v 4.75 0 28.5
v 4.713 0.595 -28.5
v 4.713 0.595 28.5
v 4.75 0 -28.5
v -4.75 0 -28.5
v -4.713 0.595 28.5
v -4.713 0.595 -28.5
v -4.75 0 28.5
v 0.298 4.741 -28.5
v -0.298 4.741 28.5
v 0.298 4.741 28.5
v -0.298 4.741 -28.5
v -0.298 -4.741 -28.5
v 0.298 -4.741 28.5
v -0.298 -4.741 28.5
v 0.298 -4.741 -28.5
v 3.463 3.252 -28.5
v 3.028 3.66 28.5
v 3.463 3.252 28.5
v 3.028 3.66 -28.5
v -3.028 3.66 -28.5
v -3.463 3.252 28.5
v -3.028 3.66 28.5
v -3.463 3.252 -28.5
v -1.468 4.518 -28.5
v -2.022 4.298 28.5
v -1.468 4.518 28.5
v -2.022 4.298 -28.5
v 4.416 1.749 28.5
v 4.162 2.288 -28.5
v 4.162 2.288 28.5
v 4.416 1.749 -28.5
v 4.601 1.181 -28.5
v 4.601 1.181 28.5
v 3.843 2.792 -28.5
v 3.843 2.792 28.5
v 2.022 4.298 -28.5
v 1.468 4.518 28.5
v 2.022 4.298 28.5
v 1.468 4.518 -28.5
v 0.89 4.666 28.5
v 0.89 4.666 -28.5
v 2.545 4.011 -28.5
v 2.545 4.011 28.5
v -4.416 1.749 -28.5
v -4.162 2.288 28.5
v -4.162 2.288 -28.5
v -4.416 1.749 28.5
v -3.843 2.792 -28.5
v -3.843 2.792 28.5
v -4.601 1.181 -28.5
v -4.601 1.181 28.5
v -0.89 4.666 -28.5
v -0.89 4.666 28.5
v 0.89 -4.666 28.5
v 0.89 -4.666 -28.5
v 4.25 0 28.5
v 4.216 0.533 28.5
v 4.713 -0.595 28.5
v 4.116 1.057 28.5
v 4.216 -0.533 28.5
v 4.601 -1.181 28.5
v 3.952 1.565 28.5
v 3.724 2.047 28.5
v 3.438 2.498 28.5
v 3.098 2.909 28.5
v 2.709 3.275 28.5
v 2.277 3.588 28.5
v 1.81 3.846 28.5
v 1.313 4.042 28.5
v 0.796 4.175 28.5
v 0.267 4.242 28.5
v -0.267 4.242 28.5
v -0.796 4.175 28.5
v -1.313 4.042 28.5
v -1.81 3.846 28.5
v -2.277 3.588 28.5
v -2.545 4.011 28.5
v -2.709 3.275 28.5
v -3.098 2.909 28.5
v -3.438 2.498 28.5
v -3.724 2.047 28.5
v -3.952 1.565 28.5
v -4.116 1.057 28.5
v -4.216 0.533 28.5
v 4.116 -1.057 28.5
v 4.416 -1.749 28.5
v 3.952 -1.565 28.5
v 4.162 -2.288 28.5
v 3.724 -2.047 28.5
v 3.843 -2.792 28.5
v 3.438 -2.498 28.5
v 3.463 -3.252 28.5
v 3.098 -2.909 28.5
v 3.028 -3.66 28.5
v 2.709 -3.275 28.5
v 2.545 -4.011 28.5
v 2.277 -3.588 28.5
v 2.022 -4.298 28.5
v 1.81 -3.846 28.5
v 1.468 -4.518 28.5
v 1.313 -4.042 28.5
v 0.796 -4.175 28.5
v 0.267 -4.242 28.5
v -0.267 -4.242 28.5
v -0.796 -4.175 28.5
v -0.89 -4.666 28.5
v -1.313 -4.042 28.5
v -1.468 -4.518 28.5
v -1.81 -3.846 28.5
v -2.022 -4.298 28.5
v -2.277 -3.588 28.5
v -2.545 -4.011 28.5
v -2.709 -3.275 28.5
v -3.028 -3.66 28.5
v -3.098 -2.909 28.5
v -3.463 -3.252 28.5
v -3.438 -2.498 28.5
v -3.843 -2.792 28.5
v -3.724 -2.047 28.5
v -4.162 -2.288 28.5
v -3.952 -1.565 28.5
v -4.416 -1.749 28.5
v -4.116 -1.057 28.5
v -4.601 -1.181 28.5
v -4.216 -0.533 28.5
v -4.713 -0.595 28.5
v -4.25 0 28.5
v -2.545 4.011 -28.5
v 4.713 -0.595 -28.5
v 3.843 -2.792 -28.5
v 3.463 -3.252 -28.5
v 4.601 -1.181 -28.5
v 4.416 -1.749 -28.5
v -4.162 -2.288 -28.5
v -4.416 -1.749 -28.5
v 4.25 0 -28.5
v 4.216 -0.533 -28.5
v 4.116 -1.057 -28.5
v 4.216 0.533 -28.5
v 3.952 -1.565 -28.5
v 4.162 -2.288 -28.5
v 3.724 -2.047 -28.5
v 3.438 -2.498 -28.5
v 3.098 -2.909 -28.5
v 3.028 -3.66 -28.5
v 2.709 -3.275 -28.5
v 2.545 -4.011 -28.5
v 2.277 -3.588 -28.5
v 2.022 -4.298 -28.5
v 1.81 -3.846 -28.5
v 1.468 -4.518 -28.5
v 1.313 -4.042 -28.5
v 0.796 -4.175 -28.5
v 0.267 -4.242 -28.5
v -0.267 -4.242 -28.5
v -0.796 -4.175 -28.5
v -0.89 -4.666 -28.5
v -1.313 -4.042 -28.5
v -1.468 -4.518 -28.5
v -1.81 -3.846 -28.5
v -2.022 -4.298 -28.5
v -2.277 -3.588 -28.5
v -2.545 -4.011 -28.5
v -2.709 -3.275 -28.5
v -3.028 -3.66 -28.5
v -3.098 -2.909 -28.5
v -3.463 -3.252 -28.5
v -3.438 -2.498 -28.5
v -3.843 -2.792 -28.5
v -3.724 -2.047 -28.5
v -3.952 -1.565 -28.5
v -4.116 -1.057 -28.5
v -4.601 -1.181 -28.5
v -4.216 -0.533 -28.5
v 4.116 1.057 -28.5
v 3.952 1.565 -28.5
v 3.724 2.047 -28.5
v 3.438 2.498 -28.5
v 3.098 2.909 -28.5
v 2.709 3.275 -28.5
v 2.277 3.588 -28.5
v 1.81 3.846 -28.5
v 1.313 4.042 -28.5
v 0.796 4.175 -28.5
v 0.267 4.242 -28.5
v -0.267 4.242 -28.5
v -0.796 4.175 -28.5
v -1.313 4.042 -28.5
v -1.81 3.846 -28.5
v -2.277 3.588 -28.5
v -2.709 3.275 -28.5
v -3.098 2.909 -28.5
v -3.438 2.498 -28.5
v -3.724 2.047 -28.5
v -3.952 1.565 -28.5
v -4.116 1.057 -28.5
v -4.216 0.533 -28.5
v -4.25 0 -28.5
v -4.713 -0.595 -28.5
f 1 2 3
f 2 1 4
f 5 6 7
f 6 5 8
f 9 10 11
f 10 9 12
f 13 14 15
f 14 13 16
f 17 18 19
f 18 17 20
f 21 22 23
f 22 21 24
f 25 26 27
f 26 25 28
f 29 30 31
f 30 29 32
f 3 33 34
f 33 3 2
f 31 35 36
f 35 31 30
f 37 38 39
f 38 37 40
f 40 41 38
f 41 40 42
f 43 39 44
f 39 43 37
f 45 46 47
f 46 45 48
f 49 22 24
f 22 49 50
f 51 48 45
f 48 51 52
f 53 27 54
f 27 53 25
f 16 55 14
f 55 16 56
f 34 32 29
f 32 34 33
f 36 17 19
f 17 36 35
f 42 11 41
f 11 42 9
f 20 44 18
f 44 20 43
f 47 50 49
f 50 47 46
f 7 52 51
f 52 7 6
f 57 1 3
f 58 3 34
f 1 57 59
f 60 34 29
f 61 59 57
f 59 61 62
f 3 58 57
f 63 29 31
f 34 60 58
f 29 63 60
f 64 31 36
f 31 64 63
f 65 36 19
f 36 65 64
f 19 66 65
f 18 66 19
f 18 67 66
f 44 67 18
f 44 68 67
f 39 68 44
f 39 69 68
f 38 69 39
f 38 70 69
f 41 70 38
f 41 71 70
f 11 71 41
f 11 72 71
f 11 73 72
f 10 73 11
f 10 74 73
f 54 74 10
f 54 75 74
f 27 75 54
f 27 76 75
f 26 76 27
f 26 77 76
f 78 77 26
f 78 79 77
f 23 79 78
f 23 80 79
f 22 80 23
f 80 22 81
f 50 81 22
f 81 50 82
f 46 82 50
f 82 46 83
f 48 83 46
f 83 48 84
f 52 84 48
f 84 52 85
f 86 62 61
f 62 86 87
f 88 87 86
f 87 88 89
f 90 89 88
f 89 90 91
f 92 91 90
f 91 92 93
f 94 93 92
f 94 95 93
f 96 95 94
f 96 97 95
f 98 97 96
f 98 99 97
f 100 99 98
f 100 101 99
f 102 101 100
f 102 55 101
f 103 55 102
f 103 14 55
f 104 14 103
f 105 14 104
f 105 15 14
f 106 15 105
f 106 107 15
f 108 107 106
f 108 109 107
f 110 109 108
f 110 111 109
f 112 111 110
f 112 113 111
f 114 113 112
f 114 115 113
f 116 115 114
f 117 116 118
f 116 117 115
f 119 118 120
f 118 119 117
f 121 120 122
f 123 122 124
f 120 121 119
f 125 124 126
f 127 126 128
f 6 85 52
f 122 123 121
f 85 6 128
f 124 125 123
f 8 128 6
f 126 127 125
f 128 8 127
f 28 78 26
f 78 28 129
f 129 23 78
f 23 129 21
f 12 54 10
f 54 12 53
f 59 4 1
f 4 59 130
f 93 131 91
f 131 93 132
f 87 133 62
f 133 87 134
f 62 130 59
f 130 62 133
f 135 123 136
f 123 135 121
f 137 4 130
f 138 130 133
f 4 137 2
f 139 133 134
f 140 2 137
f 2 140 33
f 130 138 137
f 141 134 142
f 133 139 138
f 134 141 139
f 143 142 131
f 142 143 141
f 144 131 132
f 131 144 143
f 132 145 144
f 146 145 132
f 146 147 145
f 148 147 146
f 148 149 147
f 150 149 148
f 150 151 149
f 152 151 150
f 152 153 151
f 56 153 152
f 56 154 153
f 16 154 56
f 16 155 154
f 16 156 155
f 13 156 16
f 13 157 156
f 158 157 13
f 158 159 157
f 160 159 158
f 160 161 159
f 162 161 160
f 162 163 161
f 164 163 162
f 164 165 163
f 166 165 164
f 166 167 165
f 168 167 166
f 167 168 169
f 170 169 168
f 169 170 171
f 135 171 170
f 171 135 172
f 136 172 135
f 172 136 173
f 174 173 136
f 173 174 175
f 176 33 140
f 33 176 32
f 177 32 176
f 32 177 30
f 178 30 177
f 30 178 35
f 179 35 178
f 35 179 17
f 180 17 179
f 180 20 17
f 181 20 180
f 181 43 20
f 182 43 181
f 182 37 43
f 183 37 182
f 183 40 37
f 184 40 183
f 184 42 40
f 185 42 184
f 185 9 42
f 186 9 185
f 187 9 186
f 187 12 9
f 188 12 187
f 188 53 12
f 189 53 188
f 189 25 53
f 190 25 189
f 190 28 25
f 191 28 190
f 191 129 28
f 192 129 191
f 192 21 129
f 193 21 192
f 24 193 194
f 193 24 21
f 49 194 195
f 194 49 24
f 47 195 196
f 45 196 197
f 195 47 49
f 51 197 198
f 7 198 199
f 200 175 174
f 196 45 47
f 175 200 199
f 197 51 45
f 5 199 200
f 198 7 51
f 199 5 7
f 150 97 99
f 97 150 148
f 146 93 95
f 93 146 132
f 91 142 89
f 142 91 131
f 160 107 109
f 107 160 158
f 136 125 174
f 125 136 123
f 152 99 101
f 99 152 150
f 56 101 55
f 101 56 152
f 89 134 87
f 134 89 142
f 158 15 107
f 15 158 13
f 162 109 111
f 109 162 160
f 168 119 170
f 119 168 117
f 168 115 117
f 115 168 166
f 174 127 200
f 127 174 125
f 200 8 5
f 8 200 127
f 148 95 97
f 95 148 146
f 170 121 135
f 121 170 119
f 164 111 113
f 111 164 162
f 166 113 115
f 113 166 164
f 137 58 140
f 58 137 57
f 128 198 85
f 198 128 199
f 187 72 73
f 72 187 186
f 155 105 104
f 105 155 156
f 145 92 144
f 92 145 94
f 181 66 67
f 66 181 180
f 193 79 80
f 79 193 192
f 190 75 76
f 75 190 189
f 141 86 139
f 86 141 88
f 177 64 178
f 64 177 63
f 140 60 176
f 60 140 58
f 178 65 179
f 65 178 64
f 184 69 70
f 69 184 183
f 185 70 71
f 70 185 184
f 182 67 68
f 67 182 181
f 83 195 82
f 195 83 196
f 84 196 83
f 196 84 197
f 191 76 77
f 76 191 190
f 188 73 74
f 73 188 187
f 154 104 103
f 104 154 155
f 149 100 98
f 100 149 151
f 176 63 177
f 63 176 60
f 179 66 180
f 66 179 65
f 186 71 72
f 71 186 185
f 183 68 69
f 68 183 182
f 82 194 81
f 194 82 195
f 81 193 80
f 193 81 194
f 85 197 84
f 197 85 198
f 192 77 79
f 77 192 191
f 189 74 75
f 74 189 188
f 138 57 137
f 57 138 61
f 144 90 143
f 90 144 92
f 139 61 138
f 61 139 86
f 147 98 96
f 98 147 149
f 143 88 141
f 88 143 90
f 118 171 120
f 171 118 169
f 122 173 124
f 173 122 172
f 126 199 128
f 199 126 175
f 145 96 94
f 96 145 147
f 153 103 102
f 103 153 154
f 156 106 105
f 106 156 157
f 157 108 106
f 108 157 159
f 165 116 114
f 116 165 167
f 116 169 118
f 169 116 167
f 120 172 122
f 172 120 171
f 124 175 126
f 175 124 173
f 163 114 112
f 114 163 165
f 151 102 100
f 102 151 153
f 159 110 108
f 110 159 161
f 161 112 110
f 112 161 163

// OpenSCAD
$fn = 50;


difference() {
	union() {
		translate(v = [0, 0, -28.5000000000]) {
			cylinder(h = 57, r = 4.7500000000);
		}
	}
	union() {
		translate(v = [0, 0, -100.0000000000]) {
			cylinder(h = 200, r = 4.2500000000);
		}
	}
}
